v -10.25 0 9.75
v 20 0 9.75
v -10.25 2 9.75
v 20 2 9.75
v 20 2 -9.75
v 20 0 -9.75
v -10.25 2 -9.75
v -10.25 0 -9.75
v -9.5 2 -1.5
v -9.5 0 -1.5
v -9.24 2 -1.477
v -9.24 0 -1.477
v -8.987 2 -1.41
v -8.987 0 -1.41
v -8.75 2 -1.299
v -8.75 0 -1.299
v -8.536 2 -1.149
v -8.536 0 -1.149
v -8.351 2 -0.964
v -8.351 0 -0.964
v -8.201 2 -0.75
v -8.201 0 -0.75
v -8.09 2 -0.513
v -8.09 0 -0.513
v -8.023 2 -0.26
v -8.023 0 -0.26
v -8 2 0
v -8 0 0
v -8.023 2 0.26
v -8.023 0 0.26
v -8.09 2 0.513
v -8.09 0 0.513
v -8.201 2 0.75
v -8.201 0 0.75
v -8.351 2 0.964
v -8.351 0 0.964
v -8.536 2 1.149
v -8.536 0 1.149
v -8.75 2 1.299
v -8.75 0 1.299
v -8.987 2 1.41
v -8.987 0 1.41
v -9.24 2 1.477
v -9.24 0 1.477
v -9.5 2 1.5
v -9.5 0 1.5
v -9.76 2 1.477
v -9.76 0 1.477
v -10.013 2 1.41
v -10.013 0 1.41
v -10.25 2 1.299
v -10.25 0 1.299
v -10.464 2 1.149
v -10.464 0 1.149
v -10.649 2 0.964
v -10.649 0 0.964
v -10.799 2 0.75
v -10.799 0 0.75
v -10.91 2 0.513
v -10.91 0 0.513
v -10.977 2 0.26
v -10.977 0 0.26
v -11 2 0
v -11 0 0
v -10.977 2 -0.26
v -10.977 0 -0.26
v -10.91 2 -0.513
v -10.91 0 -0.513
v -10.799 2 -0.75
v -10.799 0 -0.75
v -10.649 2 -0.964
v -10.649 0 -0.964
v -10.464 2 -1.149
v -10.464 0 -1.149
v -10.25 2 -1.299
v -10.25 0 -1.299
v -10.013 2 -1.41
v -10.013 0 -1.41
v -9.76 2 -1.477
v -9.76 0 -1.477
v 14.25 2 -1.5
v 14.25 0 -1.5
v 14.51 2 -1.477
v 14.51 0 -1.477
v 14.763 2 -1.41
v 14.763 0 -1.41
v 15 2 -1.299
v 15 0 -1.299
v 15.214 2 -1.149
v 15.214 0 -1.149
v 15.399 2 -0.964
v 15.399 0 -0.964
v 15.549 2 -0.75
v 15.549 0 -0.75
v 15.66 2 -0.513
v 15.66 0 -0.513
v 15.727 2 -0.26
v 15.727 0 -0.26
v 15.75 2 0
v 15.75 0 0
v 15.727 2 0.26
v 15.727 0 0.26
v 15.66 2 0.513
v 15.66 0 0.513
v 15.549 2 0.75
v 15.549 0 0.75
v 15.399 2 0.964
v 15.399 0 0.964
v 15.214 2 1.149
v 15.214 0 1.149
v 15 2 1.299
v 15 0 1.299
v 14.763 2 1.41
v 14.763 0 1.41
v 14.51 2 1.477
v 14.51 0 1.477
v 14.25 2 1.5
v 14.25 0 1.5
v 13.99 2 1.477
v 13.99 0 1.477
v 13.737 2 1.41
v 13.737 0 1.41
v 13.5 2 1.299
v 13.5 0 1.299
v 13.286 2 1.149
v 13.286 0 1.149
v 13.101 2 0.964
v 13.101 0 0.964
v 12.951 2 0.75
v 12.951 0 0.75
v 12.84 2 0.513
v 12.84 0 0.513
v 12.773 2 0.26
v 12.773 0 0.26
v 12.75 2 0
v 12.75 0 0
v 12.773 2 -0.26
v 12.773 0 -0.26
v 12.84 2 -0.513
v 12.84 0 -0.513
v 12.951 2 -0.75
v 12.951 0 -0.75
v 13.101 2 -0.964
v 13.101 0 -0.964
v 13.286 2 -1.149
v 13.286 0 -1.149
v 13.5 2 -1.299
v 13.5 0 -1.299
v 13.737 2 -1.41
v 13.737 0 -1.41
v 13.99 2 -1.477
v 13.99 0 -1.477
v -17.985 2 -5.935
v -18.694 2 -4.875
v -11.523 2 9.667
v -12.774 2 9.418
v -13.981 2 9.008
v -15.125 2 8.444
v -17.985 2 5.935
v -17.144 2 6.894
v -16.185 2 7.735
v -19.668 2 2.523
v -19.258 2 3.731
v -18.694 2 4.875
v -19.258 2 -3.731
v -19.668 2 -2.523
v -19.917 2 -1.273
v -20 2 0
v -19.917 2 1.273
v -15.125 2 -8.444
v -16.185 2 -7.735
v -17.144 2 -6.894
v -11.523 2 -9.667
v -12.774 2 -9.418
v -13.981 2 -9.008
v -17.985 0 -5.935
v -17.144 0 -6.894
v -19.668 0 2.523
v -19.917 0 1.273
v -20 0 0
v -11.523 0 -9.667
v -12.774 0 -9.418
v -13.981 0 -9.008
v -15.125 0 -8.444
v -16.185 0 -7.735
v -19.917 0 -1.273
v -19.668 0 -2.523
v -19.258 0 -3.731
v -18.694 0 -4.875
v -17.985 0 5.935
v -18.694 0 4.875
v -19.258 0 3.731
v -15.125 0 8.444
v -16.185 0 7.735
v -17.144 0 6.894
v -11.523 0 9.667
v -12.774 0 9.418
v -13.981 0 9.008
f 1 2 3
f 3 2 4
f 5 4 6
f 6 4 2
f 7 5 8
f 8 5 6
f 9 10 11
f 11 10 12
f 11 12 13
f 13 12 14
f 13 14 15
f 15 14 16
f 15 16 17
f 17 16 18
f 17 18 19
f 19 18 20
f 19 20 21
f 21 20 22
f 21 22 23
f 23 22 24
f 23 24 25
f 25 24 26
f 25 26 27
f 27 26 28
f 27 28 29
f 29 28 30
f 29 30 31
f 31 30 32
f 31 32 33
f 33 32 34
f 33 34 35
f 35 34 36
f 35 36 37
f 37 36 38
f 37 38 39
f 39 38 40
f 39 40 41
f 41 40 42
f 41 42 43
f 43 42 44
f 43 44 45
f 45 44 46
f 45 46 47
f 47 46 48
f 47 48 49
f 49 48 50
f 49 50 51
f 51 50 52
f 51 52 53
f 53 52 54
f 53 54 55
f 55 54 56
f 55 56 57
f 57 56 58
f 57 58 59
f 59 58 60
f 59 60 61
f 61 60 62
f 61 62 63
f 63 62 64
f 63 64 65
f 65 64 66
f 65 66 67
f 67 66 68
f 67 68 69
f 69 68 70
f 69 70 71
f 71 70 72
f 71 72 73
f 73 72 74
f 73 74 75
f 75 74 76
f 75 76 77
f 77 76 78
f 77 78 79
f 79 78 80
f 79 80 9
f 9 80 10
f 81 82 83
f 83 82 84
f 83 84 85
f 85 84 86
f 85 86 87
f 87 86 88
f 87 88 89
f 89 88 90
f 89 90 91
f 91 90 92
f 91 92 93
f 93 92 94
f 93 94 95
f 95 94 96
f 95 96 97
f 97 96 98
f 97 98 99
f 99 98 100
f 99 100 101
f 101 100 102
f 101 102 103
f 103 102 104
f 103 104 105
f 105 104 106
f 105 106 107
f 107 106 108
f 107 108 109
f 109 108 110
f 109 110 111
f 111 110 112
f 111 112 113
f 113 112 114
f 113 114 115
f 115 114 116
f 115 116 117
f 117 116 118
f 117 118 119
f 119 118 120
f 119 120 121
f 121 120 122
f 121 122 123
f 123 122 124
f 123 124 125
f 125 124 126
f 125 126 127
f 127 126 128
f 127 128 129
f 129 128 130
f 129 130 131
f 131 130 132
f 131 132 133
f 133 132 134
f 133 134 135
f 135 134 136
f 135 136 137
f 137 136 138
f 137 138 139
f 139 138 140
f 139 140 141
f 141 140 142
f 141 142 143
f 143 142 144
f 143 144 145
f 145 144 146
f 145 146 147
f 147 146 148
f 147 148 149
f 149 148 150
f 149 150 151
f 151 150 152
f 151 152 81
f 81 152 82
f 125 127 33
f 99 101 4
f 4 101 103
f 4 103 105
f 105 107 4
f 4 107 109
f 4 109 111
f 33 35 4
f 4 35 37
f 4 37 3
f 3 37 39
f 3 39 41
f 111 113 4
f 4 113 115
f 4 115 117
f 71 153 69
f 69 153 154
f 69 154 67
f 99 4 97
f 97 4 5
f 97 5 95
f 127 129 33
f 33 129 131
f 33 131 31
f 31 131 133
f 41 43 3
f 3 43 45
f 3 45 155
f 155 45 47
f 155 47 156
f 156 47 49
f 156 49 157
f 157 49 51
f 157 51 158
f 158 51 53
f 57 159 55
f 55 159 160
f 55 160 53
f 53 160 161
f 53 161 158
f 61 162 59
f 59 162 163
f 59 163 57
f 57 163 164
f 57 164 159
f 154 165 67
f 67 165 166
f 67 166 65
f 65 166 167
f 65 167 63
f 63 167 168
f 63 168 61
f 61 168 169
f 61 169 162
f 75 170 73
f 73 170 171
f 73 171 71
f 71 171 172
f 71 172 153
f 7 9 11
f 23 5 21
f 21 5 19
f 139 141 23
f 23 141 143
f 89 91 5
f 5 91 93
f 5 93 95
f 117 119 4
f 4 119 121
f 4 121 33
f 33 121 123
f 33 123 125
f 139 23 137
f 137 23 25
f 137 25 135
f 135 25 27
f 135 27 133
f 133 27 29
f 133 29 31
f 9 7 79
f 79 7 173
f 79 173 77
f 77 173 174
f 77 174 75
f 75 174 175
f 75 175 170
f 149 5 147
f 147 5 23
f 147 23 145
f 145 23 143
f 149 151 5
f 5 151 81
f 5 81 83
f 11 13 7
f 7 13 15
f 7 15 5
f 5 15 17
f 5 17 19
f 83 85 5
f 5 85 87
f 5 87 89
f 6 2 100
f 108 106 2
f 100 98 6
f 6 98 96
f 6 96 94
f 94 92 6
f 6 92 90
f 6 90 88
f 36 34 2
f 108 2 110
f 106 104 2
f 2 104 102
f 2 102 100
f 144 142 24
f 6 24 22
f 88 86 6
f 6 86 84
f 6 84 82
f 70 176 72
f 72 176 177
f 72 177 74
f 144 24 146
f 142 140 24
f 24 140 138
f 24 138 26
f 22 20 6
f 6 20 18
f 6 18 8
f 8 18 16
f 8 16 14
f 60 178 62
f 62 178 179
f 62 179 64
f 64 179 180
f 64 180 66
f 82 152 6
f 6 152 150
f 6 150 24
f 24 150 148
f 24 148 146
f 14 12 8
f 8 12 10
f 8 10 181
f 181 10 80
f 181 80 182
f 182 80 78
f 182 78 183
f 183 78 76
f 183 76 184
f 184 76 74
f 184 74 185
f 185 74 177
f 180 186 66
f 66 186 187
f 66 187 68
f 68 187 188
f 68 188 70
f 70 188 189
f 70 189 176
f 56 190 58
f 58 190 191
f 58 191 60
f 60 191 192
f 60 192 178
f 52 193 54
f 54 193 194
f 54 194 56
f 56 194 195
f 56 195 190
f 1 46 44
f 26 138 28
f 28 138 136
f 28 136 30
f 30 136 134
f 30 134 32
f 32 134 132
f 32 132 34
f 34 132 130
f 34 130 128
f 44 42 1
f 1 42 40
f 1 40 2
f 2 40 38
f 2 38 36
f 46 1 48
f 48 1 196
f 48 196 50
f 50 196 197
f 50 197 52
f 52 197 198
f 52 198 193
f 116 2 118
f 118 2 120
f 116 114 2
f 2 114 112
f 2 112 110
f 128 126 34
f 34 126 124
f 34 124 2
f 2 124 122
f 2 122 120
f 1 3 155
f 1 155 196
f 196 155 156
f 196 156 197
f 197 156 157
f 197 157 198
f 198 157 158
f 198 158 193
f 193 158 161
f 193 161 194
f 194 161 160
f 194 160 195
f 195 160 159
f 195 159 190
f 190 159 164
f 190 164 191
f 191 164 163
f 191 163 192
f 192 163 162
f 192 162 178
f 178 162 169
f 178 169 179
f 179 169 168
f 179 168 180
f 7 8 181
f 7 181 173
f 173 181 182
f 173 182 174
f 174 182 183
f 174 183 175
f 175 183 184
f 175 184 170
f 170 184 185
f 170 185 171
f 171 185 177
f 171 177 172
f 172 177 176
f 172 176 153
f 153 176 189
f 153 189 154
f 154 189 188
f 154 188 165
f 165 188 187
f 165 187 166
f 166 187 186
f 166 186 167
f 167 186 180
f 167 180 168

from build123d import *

# Parameters (mm, degrees)
SKETCH1_W           = 40
SKETCH1_H           = 19.5
SKETCH1_R           = 1.5
BOSS_EXTRUDE1_DEPTH = 2
FILLET1_R           = 9.75


with BuildPart() as part:
    # Sketch1 → Boss-Extrude1 (new body)
    with BuildSketch(Plane(origin=(0, 0, 0), x_dir=(1, 0, 0), z_dir=(0, 1, 0))):
        Rectangle(SKETCH1_W, SKETCH1_H)
        with Locations(Location((-9.5, 0, 0), (0, 0, 270))):
            Circle(SKETCH1_R, mode=Mode.SUBTRACT)
        with Locations(Location((14.25, 0, 0), (0, 0, 270))):
            Circle(SKETCH1_R, mode=Mode.SUBTRACT)
    extrude(amount=BOSS_EXTRUDE1_DEPTH)

    # Fillet1
    fillet1_edges = [part.edges().sort_by_distance(p)[0] for p in [
        (-20, 1, -9.75),
        (-20, 1, 9.75),
    ]]
    fillet(fillet1_edges, radius=FILLET1_R - 0.0001)  # a hair under: the kernel refuses the full size


solid = part.part
